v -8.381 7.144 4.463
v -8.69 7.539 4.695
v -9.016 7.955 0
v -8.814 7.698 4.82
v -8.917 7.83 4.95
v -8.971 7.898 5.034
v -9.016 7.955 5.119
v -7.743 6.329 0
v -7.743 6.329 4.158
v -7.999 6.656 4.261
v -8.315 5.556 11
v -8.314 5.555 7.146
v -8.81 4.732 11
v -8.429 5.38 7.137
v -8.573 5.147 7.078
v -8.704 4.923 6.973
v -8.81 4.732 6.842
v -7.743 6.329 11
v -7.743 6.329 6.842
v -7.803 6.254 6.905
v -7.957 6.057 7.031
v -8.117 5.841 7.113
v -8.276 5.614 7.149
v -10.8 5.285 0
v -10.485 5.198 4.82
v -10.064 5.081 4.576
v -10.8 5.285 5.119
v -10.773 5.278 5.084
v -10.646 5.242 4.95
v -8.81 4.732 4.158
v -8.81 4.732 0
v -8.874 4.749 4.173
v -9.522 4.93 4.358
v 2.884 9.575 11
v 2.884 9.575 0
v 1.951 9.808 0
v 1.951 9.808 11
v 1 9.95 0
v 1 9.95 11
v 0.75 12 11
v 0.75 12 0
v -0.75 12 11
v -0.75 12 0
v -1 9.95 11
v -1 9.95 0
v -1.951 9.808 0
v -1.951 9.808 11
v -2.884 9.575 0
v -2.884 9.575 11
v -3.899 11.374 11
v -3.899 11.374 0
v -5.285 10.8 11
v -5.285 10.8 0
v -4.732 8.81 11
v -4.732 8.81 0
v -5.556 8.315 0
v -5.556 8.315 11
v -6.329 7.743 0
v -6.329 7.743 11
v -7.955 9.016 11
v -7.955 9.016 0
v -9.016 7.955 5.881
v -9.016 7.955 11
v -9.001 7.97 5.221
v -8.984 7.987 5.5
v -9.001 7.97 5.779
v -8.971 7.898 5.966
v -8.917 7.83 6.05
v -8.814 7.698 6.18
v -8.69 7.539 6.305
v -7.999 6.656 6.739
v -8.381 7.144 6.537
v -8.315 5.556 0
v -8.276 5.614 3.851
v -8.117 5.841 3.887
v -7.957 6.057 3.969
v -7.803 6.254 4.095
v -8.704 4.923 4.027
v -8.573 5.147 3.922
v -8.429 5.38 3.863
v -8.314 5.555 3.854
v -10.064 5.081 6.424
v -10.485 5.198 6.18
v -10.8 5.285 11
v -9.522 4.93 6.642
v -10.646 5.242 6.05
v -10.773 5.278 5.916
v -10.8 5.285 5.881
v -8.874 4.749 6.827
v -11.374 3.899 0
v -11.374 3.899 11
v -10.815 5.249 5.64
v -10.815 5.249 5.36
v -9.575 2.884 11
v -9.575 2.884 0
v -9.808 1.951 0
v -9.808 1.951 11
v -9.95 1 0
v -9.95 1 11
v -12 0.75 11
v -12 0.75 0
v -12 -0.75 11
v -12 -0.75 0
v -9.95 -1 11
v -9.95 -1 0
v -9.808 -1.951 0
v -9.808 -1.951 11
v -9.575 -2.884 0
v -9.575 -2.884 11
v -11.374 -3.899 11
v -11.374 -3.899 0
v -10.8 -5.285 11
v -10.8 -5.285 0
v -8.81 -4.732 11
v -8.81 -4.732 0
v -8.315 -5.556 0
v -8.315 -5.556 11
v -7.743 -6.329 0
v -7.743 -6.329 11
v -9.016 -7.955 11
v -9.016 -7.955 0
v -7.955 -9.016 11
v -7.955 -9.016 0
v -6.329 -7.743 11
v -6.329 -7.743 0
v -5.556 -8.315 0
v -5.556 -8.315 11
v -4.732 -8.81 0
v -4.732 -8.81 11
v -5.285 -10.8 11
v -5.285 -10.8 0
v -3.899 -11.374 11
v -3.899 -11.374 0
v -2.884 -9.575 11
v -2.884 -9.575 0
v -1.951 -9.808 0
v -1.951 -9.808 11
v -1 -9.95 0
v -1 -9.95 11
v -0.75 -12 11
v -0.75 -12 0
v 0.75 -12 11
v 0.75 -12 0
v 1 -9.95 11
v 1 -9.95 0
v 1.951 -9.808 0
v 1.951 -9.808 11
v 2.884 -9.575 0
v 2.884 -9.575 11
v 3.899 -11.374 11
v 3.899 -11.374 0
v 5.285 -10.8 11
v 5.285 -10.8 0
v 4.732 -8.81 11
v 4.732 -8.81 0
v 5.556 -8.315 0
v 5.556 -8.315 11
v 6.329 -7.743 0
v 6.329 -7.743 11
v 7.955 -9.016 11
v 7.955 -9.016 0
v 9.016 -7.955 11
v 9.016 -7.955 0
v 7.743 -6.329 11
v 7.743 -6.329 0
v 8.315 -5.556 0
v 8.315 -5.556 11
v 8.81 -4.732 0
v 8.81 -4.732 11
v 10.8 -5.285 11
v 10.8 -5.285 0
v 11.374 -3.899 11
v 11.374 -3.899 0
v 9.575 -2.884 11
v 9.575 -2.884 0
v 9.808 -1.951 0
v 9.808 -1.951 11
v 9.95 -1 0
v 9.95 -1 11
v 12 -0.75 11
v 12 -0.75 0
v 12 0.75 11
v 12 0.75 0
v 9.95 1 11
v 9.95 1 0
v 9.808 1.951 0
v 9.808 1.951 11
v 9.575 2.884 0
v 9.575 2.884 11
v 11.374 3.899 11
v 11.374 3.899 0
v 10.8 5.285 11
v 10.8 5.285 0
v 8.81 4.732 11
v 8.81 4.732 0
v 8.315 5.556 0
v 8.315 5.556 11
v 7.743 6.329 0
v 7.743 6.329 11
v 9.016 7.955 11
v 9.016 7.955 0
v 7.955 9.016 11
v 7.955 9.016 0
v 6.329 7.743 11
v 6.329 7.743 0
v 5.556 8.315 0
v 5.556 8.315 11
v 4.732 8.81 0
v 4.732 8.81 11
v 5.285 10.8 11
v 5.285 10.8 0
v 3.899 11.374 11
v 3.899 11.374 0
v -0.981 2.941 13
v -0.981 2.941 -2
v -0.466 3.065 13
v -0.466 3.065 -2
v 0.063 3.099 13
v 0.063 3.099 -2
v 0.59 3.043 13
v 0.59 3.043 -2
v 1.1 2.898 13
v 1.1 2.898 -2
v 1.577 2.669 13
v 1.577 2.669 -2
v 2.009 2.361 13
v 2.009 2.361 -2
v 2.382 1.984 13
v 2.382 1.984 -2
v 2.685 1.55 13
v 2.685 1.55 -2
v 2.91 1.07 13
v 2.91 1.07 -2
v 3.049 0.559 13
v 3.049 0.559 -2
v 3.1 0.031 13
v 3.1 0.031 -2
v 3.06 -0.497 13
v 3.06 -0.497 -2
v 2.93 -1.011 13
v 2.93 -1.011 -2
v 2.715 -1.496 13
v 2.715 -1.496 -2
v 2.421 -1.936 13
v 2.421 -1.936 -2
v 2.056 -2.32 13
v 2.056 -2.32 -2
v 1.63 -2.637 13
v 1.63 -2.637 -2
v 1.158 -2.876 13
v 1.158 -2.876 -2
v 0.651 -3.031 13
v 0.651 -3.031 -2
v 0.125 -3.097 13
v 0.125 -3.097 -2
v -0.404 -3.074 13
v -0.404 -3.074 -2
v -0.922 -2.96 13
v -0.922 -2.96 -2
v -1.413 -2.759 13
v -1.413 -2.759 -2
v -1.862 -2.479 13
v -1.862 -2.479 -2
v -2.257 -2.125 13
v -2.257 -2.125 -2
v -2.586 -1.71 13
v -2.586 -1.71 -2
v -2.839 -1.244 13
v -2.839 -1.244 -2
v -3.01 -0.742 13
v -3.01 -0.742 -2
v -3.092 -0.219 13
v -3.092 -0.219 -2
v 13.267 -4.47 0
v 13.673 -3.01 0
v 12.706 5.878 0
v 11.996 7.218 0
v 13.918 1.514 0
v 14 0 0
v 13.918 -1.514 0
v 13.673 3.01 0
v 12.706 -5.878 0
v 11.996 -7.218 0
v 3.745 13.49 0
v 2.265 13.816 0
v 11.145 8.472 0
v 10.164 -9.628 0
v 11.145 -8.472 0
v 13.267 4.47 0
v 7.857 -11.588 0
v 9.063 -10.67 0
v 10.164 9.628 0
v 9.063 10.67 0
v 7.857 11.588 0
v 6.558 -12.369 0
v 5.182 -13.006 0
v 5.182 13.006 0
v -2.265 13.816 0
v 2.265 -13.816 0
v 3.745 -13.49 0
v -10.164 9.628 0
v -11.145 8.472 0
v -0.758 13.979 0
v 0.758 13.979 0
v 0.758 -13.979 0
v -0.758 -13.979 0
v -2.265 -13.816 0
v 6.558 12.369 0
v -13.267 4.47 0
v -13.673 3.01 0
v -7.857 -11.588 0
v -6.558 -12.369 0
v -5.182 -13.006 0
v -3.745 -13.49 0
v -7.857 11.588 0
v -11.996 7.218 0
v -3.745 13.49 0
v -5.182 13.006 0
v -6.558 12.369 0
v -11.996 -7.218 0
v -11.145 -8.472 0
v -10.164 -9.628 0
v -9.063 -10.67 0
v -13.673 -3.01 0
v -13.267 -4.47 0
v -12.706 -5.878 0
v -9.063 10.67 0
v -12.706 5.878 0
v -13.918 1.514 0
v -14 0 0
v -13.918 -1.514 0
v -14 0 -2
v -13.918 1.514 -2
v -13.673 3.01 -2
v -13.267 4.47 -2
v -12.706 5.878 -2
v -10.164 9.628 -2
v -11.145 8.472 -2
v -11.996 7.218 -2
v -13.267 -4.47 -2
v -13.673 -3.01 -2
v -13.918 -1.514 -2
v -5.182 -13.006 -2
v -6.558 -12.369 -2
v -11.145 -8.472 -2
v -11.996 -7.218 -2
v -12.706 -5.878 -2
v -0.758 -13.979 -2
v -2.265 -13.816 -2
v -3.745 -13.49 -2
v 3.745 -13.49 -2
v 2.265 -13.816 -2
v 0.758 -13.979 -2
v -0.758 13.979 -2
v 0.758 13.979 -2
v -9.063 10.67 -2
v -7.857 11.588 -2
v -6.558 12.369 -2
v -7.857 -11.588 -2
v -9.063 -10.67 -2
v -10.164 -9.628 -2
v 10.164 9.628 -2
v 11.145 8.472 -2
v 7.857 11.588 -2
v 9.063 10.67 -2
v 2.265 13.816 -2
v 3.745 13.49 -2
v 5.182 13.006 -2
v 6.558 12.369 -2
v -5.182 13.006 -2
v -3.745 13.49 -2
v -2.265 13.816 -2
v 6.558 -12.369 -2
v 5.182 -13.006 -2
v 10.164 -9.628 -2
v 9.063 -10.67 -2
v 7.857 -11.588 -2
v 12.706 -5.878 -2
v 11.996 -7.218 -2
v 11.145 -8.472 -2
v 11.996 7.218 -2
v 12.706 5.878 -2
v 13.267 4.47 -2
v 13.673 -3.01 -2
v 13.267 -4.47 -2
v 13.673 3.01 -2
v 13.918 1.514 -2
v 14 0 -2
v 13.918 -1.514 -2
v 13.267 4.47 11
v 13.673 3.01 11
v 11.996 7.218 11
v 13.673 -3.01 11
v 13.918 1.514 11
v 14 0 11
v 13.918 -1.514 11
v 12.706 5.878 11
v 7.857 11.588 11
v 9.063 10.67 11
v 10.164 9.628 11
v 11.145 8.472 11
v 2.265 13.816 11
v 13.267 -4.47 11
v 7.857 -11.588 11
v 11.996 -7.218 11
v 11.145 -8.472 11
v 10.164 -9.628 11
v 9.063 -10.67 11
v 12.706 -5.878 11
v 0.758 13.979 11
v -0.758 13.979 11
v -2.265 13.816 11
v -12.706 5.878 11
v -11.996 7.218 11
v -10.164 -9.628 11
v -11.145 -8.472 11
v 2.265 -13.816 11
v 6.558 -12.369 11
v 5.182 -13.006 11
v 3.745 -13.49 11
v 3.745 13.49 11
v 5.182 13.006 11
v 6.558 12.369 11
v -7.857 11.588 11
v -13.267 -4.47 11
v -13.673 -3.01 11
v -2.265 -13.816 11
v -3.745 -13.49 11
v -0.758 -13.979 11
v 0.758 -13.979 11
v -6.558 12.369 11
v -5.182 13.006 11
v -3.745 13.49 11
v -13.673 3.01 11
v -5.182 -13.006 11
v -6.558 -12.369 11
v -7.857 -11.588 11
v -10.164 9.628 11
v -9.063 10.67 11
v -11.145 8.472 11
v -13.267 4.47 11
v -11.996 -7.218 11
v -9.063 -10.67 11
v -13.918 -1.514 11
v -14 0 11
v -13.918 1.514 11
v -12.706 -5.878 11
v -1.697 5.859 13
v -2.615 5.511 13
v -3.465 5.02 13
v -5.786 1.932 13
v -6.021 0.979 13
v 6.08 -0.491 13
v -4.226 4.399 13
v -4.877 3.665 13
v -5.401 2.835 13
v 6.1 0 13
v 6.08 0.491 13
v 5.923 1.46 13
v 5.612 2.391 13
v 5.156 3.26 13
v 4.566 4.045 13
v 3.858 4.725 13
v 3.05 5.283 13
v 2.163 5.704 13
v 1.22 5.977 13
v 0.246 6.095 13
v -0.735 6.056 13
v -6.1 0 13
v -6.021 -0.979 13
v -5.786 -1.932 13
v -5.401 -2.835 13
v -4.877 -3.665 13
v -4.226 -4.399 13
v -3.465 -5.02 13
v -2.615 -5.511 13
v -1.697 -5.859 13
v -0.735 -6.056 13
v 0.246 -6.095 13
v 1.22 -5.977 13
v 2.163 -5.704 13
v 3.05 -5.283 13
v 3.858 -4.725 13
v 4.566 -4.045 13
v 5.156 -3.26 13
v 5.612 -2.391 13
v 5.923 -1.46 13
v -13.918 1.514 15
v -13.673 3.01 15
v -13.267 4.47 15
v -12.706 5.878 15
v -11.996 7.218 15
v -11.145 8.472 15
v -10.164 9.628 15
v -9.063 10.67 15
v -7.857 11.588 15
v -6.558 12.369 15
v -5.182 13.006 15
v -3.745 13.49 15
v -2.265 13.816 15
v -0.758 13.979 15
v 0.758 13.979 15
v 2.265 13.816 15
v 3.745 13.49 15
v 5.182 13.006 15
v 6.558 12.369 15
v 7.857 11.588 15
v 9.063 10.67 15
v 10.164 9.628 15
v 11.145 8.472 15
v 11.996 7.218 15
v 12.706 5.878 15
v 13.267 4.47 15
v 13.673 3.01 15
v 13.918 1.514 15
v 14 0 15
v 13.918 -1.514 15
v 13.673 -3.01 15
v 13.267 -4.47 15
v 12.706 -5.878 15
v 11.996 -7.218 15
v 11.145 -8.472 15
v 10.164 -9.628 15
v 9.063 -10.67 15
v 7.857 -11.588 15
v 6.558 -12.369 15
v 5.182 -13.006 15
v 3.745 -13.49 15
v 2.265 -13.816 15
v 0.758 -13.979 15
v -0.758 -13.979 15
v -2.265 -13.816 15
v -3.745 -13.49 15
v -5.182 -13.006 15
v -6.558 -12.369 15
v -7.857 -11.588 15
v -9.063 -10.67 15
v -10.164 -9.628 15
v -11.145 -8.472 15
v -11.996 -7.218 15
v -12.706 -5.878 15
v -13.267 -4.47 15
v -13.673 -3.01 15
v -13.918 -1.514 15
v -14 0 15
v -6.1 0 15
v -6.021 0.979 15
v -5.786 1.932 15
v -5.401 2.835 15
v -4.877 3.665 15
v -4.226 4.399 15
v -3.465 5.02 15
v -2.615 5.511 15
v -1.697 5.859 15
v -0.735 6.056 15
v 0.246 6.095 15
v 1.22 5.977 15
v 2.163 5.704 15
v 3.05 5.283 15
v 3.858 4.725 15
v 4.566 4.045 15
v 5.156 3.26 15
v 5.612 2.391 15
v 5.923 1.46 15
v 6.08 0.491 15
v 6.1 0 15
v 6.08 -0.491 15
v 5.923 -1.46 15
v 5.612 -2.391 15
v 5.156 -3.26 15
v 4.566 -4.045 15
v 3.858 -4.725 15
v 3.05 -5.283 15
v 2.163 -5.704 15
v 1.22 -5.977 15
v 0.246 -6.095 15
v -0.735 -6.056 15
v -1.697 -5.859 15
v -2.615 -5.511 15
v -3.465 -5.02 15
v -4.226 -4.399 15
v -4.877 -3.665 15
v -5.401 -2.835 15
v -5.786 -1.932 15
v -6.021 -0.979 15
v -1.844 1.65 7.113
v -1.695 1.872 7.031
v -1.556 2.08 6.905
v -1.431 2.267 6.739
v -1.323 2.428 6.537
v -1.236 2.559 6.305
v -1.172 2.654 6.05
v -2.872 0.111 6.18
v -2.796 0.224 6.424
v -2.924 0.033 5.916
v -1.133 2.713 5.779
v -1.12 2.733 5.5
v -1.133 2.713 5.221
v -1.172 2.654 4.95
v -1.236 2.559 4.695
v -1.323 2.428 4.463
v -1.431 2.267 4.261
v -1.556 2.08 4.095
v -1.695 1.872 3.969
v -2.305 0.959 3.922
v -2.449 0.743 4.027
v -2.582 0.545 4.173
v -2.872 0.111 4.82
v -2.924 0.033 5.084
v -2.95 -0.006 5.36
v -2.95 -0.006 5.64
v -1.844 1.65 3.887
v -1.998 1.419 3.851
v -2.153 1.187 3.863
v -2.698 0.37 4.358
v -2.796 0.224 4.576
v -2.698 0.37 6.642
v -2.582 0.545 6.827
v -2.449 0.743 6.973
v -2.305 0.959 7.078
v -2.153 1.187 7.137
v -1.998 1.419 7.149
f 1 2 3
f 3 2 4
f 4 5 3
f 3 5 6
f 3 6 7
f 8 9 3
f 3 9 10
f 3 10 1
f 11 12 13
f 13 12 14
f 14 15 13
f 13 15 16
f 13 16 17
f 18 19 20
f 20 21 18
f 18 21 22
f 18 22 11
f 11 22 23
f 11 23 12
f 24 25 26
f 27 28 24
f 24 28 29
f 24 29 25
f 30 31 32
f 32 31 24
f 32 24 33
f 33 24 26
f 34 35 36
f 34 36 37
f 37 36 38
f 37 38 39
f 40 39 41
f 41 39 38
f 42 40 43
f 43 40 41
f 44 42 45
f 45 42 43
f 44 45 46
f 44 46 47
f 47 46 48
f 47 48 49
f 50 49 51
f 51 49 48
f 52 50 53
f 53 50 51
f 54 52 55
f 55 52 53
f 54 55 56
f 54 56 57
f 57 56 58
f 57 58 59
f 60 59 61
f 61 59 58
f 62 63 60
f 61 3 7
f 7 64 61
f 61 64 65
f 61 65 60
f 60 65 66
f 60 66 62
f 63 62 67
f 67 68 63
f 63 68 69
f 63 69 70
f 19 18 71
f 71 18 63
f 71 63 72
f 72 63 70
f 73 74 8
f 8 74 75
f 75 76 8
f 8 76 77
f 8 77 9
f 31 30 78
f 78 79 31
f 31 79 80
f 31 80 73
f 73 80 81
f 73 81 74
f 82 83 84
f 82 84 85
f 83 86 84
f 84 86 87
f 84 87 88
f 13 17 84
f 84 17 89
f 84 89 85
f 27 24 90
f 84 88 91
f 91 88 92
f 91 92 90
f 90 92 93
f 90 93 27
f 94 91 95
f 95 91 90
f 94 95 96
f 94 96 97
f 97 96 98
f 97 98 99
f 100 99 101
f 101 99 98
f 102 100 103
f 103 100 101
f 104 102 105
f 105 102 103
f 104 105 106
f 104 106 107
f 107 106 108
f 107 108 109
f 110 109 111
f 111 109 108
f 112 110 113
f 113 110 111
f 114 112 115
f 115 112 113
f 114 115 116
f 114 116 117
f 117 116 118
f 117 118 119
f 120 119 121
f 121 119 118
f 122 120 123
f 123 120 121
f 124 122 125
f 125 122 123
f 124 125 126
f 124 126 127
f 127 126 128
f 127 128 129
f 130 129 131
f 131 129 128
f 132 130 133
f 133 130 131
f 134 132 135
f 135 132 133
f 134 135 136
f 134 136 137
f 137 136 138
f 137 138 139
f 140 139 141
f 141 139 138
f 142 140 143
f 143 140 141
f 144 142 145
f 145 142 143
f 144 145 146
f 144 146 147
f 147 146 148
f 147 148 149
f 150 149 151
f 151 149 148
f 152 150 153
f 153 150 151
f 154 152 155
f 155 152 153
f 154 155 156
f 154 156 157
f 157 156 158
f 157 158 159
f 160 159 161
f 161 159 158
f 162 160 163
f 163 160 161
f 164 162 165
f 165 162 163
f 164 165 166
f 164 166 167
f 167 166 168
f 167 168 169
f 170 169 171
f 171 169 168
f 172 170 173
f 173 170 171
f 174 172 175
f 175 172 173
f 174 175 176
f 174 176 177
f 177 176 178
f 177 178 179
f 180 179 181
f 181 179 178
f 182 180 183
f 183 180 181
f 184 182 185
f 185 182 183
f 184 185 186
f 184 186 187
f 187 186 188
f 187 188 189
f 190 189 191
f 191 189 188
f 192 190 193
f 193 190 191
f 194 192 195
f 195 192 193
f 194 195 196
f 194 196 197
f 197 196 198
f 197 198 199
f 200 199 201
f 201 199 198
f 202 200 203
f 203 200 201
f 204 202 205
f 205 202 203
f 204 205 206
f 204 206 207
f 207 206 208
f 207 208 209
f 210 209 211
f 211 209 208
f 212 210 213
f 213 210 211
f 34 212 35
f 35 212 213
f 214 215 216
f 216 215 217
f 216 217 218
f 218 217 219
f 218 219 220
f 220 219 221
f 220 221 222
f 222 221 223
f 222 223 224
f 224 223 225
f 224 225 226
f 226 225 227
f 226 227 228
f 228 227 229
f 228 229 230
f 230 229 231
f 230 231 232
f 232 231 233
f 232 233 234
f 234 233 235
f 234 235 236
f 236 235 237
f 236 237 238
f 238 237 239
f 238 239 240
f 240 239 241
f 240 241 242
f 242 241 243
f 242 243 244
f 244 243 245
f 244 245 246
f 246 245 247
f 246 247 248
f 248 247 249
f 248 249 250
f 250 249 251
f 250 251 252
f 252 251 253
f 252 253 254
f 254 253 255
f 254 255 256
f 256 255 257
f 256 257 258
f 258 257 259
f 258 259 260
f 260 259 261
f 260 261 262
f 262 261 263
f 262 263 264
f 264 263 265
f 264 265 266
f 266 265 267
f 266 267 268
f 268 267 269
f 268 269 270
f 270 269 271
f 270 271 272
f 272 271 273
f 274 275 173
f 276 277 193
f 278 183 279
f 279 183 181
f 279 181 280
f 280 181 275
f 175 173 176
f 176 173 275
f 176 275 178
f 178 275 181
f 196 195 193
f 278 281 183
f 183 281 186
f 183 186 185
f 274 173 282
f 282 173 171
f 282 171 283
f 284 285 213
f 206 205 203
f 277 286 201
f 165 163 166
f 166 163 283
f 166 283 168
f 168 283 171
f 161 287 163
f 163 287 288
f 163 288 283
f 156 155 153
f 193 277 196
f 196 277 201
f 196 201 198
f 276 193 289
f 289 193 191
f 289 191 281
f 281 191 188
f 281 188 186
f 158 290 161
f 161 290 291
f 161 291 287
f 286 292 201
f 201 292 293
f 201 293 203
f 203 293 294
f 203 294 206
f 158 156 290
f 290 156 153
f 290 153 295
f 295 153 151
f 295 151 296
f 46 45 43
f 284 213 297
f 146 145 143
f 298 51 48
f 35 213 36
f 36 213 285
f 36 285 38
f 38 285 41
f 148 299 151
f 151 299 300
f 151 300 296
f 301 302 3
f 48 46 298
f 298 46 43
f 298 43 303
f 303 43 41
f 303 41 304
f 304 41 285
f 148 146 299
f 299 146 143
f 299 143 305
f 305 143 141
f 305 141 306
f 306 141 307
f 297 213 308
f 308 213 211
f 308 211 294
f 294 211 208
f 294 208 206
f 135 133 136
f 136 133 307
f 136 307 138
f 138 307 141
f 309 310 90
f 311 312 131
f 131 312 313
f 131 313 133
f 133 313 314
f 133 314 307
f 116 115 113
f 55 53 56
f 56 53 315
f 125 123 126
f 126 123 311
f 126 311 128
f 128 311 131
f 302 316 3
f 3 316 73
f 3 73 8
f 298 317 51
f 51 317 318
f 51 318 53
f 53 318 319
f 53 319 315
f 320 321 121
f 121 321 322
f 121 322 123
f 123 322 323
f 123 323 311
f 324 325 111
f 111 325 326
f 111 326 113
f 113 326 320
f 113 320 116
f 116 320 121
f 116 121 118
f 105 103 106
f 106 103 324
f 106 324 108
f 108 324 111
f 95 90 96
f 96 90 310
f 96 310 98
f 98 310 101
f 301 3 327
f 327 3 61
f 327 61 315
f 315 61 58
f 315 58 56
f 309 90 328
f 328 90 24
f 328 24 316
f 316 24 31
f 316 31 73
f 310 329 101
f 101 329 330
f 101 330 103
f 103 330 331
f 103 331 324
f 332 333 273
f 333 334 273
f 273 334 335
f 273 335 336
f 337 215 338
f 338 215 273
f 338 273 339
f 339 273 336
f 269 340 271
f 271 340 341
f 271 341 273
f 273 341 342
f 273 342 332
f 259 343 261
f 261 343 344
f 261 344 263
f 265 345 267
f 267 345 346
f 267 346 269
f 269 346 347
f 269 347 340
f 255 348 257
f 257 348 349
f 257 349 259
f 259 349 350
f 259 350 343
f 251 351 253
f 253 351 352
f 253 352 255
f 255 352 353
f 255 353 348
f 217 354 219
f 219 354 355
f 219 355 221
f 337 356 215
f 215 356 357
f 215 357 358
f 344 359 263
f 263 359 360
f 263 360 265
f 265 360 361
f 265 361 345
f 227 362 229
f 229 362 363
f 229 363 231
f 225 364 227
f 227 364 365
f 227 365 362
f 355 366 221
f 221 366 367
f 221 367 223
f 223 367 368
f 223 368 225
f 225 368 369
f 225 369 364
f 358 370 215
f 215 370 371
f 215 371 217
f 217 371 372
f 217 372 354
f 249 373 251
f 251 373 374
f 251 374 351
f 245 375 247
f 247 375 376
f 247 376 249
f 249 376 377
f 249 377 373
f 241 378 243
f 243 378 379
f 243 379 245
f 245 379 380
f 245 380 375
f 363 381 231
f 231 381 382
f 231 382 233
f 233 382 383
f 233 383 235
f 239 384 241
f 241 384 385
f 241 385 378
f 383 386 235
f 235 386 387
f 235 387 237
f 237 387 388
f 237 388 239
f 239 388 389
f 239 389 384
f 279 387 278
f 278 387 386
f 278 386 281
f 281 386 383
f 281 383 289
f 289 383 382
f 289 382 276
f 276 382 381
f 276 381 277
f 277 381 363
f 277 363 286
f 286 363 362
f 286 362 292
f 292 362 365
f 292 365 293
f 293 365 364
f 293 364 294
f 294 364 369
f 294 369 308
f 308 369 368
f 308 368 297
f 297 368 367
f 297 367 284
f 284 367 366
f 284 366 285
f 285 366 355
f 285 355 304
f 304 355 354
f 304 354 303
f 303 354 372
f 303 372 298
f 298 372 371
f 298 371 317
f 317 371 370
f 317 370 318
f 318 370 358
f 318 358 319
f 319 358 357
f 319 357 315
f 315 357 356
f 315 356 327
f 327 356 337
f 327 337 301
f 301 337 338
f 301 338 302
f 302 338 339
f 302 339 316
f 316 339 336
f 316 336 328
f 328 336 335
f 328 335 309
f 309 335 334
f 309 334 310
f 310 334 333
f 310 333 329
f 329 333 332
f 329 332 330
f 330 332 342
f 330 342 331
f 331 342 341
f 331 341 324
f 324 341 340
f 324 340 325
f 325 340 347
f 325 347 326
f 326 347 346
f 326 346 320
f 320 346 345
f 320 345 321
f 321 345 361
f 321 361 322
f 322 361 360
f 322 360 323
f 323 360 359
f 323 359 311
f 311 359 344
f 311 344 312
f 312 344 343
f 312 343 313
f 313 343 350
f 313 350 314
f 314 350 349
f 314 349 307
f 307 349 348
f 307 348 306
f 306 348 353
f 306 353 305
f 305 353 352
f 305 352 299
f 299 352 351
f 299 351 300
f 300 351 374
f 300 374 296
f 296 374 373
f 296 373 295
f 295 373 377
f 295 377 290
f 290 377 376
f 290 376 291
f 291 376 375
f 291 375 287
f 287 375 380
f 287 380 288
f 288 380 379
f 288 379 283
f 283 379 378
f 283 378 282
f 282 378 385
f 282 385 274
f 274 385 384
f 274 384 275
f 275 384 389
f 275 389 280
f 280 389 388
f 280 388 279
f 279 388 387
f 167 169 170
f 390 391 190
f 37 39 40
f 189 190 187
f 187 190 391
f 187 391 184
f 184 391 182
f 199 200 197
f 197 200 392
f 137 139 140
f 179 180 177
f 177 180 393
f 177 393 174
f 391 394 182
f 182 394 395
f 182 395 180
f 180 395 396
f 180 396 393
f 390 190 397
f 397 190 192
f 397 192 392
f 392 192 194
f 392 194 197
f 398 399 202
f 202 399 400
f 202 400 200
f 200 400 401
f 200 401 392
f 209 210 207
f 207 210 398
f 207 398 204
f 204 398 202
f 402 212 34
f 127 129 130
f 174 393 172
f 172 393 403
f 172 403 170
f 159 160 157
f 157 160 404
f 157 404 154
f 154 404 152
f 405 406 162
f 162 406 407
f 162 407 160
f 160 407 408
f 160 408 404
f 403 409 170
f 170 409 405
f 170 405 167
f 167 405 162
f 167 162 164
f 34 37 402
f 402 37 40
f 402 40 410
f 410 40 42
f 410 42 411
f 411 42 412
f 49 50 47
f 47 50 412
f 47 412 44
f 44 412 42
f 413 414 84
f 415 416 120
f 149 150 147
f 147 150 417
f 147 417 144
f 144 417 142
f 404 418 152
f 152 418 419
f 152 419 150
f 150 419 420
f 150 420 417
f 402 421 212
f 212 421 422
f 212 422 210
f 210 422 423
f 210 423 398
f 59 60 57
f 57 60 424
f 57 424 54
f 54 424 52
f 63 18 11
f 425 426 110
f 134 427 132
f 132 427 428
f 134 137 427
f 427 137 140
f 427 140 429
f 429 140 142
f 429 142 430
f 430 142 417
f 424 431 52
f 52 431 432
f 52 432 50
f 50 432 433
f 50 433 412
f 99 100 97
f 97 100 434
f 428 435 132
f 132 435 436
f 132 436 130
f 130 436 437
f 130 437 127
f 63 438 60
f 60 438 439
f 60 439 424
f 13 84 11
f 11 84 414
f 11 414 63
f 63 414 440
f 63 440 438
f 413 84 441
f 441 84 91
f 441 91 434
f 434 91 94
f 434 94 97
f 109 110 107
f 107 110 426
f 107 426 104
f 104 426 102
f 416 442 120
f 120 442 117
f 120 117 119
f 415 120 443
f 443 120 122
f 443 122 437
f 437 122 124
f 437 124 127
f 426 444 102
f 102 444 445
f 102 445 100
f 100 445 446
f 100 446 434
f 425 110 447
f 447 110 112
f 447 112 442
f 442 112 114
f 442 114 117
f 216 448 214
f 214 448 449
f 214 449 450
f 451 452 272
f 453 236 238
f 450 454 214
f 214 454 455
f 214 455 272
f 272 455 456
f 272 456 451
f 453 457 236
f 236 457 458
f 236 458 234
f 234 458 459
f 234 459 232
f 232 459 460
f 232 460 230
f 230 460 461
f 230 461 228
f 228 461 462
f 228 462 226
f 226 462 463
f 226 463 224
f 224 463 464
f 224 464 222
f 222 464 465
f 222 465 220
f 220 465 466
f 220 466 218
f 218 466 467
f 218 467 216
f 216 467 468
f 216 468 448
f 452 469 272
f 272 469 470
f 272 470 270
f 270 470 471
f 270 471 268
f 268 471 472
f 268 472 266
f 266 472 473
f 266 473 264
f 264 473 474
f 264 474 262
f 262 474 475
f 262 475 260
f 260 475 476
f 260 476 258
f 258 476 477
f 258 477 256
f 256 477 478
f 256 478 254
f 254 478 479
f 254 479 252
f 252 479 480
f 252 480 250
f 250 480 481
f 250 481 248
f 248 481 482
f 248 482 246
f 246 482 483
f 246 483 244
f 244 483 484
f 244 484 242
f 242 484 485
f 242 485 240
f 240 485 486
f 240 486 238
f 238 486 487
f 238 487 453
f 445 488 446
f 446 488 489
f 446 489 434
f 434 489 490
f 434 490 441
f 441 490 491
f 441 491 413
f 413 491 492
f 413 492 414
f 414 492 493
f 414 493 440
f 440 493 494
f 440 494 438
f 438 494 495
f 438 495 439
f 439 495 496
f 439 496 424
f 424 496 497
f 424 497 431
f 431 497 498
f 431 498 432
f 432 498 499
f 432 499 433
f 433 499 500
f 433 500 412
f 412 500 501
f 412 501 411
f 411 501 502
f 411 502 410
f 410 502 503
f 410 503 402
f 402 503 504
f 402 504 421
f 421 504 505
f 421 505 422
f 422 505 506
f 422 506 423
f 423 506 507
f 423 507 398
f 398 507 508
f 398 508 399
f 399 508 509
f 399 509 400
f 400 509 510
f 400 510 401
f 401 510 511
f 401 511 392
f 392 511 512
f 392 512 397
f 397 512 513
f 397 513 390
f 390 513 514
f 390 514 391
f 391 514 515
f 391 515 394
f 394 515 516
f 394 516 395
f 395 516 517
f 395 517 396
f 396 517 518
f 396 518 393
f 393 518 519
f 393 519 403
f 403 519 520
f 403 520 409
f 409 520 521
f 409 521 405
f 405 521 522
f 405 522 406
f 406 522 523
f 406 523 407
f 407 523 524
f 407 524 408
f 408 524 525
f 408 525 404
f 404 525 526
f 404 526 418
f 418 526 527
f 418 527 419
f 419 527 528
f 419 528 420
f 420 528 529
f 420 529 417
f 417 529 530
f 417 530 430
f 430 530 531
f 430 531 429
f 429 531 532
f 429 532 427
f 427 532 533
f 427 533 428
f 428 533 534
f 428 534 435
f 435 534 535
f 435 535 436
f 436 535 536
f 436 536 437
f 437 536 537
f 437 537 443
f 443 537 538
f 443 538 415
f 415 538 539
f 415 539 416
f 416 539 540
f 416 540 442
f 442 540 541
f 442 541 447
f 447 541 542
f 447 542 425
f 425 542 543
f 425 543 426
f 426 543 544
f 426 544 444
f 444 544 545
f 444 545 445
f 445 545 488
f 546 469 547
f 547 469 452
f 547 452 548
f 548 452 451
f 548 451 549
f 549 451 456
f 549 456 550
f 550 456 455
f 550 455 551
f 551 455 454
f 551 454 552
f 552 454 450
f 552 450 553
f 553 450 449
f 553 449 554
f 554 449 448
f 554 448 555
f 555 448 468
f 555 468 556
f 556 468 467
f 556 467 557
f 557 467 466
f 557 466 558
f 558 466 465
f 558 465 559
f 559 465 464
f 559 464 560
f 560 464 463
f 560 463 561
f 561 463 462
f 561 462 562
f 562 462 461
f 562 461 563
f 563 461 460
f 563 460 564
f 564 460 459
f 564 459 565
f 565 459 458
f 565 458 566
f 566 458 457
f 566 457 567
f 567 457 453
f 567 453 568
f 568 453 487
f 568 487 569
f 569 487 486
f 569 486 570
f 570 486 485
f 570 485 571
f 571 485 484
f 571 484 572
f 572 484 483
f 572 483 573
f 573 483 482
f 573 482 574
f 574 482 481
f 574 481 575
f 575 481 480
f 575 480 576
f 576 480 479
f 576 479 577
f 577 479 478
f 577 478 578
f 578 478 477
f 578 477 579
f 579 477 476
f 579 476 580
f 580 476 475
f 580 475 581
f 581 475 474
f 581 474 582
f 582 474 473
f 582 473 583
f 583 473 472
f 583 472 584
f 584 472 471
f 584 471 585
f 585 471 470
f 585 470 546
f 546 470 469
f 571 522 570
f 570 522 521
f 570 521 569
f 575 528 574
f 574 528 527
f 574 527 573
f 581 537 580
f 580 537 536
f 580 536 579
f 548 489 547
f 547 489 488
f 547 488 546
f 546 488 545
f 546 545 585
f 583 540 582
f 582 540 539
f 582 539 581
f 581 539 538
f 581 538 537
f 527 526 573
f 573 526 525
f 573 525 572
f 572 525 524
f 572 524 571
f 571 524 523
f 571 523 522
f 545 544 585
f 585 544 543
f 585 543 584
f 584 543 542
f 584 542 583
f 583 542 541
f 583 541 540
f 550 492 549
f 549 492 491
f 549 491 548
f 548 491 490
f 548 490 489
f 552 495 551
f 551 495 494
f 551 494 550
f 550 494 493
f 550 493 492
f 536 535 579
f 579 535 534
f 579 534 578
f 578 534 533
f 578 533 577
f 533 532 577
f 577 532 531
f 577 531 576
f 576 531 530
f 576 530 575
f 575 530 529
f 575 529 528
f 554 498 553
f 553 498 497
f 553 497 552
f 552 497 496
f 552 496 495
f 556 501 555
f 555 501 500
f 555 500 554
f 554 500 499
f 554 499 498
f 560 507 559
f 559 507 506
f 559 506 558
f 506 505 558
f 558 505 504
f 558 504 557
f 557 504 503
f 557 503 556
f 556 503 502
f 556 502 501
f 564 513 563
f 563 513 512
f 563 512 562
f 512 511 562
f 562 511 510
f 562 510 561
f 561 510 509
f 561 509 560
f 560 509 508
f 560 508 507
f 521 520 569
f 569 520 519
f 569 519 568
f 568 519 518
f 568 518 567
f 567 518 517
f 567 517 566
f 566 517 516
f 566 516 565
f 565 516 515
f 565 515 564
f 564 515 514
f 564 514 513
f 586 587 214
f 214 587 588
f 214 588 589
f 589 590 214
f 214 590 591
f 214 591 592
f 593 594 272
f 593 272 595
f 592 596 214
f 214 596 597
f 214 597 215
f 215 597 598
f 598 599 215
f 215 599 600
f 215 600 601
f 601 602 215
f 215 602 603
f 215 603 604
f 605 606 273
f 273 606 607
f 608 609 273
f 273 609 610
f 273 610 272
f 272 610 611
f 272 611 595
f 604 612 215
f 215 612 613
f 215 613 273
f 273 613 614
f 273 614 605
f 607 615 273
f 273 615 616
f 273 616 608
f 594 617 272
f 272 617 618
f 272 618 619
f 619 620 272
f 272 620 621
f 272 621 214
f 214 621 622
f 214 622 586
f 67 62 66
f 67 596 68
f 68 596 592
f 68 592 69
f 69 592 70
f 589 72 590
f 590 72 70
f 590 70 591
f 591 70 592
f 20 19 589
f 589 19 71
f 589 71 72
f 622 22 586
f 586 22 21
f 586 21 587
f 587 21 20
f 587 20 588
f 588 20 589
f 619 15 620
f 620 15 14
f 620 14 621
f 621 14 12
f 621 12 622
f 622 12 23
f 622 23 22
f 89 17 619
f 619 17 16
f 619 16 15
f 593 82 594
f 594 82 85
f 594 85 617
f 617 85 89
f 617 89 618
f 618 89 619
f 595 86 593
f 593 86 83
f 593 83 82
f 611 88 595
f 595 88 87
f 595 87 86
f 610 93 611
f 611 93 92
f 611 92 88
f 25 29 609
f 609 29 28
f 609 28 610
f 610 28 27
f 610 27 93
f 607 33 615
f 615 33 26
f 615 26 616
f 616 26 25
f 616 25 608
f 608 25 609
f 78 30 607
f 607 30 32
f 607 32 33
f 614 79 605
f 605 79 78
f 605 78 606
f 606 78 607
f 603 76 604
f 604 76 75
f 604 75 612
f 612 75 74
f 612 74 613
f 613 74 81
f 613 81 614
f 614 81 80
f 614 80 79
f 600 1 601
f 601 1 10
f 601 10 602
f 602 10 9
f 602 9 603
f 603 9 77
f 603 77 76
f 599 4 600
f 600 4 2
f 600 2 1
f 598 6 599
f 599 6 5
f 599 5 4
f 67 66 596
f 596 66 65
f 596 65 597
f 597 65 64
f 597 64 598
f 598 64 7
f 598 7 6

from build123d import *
from build123d.topology import SkipClean

# Parameters (mm, degrees)
SKETCH_1_R          = 3.1
SKETCH_1_W          = 1.5
SKETCH_1_H          = 1.949874371
EXTRUDE_1_DEPTH     = 11
EXTRUDE_START       = 2
SKETCH_3_R          = 14
SKETCH_3_R_2        = 3.1
EXTRUDE_2_DEPTH     = 2
SKETCH_4_R          = 14
SKETCH_4_R_2        = 3.1
EXTRUDE_3_DEPTH     = 2
SKETCH_5_R          = 14
SKETCH_5_R_2        = 6.1
EXTRUDE_4_DEPTH     = 2
EXTRUDE_5_DEPTH     = 15
SKETCH_2_R          = 1.65
CUT_EXTRUDE_3_DEPTH = 25.839484697


with BuildPart() as part:
    # ｽｹｯﾁ1 → ﾎﾞｽ - 押し出し1 (new body)
    # profile 1 of 23: a face of its own
    with BuildSketch(Plane.XY):
        with BuildLine():
            ThreePointArc((-4.731531608, 8.80980185), (-3.826834324, 9.238795325), (-2.883772543, 9.575168715))
            Line((-2.883772543, 9.575168715), (-3.899291539, 11.373566964))
            Line((-3.899291539, 11.373566964), (-5.285110838, 10.799541816))
            Line((-5.285110838, 10.799541816), (-4.731531608, 8.80980185))
        make_face()
    # profile 2 of 23: a face of its own
    with BuildSketch(Plane.XY):
        with BuildLine():
            Line((-0.75, 9.971835338), (-0.75, 12))
            Line((-0.75, 12), (-1, 9.949874371))
            ThreePointArc((-1, 9.949874371), (-0.875068895, 9.961639144), (-0.75, 9.971835338))
        make_face()
    # profile 3 of 23: a face of its own
    with BuildSketch(Plane.XY):
        with BuildLine():
            Line((0.75, 12), (-0.75, 12))
            Line((-0.75, 12), (-0.75, 9.971835338))
            ThreePointArc((-0.75, 9.971835338), (0, 10), (0.75, 9.971835338))
            Line((0.75, 9.971835338), (0.75, 12))
        make_face()
    # profile 4 of 23: a face of its own
    with BuildSketch(Plane.XY):
        with BuildLine():
            Line((1, 9.949874371), (0.75, 12))
            Line((0.75, 12), (0.75, 9.971835338))
            ThreePointArc((0.75, 9.971835338), (0.875068895, 9.961639144), (1, 9.949874371))
        make_face()
    # profile 5 of 23: a face of its own
    with BuildSketch(Plane.XY):
        with BuildLine():
            ThreePointArc((-7.742730421, 6.328516859), (-7.071067812, 7.071067812), (-6.328516859, 7.742730421))
            Line((-6.328516859, 7.742730421), (-7.954951288, 9.01561146))
            Line((-7.954951288, 9.01561146), (-9.01561146, 7.954951288))
            Line((-9.01561146, 7.954951288), (-7.742730421, 6.328516859))
        make_face()
    # profile 6 of 23: a face of its own
    with BuildSketch(Plane.XY):
        with BuildLine():
            ThreePointArc((-9.575168715, 2.883772543), (-9.238795325, 3.826834324), (-8.80980185, 4.731531608))
            Line((-8.80980185, 4.731531608), (-10.799541816, 5.285110838))
            Line((-10.799541816, 5.285110838), (-11.373566964, 3.899291539))
            Line((-11.373566964, 3.899291539), (-9.575168715, 2.883772543))
        make_face()
    # profile 7 of 23: a face of its own
    with BuildSketch(Plane.XY):
        with BuildLine():
            ThreePointArc((-9.949874371, -1), (-10, 0), (-9.949874371, 1))
            Line((-9.949874371, 1), (-12, 0.75))
            Line((-12, 0.75), (-12, -0.75))
            Line((-12, -0.75), (-9.949874371, -1))
        make_face()
    # profile 8 of 23: a face of its own
    with BuildSketch(Plane.XY):
        with BuildLine():
            ThreePointArc((-8.80980185, -4.731531608), (-9.238795325, -3.826834324), (-9.575168715, -2.883772543))
            Line((-9.575168715, -2.883772543), (-11.373566964, -3.899291539))
            Line((-11.373566964, -3.899291539), (-10.799541816, -5.285110838))
            Line((-10.799541816, -5.285110838), (-8.80980185, -4.731531608))
        make_face()
    # profile 9 of 23: a face of its own
    with BuildSketch(Plane.XY):
        with BuildLine():
            ThreePointArc((-6.328516859, -7.742730421), (-7.071067812, -7.071067812), (-7.742730421, -6.328516859))
            Line((-7.742730421, -6.328516859), (-9.01561146, -7.954951288))
            Line((-9.01561146, -7.954951288), (-7.954951288, -9.01561146))
            Line((-7.954951288, -9.01561146), (-6.328516859, -7.742730421))
        make_face()
    # profile 10 of 23: a face of its own
    with BuildSketch(Plane.XY):
        with BuildLine():
            ThreePointArc((-2.883772543, -9.575168715), (-3.826834324, -9.238795325), (-4.731531608, -8.80980185))
            Line((-4.731531608, -8.80980185), (-5.285110838, -10.799541816))
            Line((-5.285110838, -10.799541816), (-3.899291539, -11.373566964))
            Line((-3.899291539, -11.373566964), (-2.883772543, -9.575168715))
        make_face()
    # profile 11 of 23: a face of its own
    with BuildSketch(Plane.XY):
        with BuildLine():
            ThreePointArc((1, -9.949874371), (0, -10), (-1, -9.949874371))
            Line((-1, -9.949874371), (-0.75, -12))
            Line((-0.75, -12), (0.75, -12))
            Line((0.75, -12), (1, -9.949874371))
        make_face()
    # profile 12 of 23: a face of its own
    with BuildSketch(Plane.XY):
        with BuildLine():
            Line((5.285110838, -10.799541816), (4.731531608, -8.80980185))
            ThreePointArc((4.731531608, -8.80980185), (3.826834324, -9.238795325), (2.883772543, -9.575168715))
            Line((2.883772543, -9.575168715), (3.899291539, -11.373566964))
            Line((3.899291539, -11.373566964), (5.285110838, -10.799541816))
        make_face()
    # profile 13 of 23: a face of its own
    with BuildSketch(Plane.XY):
        with BuildLine():
            Line((9.01561146, -7.954951288), (7.742730421, -6.328516859))
            ThreePointArc((7.742730421, -6.328516859), (7.071067812, -7.071067812), (6.328516859, -7.742730421))
            Line((6.328516859, -7.742730421), (7.954951288, -9.01561146))
            Line((7.954951288, -9.01561146), (9.01561146, -7.954951288))
        make_face()
    # profile 14 of 23: a face of its own
    with BuildSketch(Plane.XY):
        with BuildLine():
            Line((11.373566964, -3.899291539), (9.575168715, -2.883772543))
            ThreePointArc((9.575168715, -2.883772543), (9.238795325, -3.826834324), (8.80980185, -4.731531608))
            Line((8.80980185, -4.731531608), (10.799541816, -5.285110838))
            Line((10.799541816, -5.285110838), (11.373566964, -3.899291539))
        make_face()
    # profile 15 of 23: a face of its own
    with BuildSketch(Plane.XY):
        with BuildLine():
            Line((12, 0.75), (9.949874371, 1))
            ThreePointArc((9.949874371, 1), (9.987460731, 0.500627751), (10, 0))
            ThreePointArc((10, 0), (9.987460731, -0.500627751), (9.949874371, -1))
            Line((9.949874371, -1), (12, -0.75))
            Line((12, -0.75), (12, 0.75))
        make_face()
    # profile 16 of 23: a face of its own
    with BuildSketch(Plane.XY):
        with BuildLine():
            Line((10.799541816, 5.285110838), (8.80980185, 4.731531608))
            ThreePointArc((8.80980185, 4.731531608), (9.238795325, 3.826834324), (9.575168715, 2.883772543))
            Line((9.575168715, 2.883772543), (11.373566964, 3.899291539))
            Line((11.373566964, 3.899291539), (10.799541816, 5.285110838))
        make_face()
    # profile 17 of 23: a face of its own
    with BuildSketch(Plane.XY):
        with BuildLine():
            Line((7.954951288, 9.01561146), (6.328516859, 7.742730421))
            ThreePointArc((6.328516859, 7.742730421), (7.071067812, 7.071067812), (7.742730421, 6.328516859))
            Line((7.742730421, 6.328516859), (9.01561146, 7.954951288))
            Line((9.01561146, 7.954951288), (7.954951288, 9.01561146))
        make_face()
    # profile 18 of 23: a face of its own
    with BuildSketch(Plane.XY):
        with BuildLine():
            Line((3.899291539, 11.373566964), (2.883772543, 9.575168715))
            ThreePointArc((2.883772543, 9.575168715), (3.826834324, 9.238795325), (4.731531608, 8.80980185))
            Line((4.731531608, 8.80980185), (5.285110838, 10.799541816))
            Line((5.285110838, 10.799541816), (3.899291539, 11.373566964))
        make_face()
    # profile 19 of 23: a face of its own
    with BuildSketch(Plane.XY):
        with BuildLine():
            Line((-0.75, 9.949874371), (-1, 9.949874371))
            ThreePointArc((-1, 9.949874371), (-1.95090322, 9.807852804), (-2.883772543, 9.575168715))
            ThreePointArc((-2.883772543, 9.575168715), (-3.826834324, 9.238795325), (-4.731531608, 8.80980185))
            ThreePointArc((-4.731531608, 8.80980185), (-5.55570233, 8.314696123), (-6.328516859, 7.742730421))
            ThreePointArc((-6.328516859, 7.742730421), (-7.071067812, 7.071067812), (-7.742730421, 6.328516859))
            ThreePointArc((-7.742730421, 6.328516859), (-8.314696123, 5.55570233), (-8.80980185, 4.731531608))
            ThreePointArc((-8.80980185, 4.731531608), (-9.238795325, 3.826834324), (-9.575168715, 2.883772543))
            ThreePointArc((-9.575168715, 2.883772543), (-9.807852804, 1.95090322), (-9.949874371, 1))
            ThreePointArc((-9.949874371, 1), (-10, 0), (-9.949874371, -1))
            ThreePointArc((-9.949874371, -1), (-9.807852804, -1.95090322), (-9.575168715, -2.883772543))
            ThreePointArc((-9.575168715, -2.883772543), (-9.238795325, -3.826834324), (-8.80980185, -4.731531608))
            ThreePointArc((-8.80980185, -4.731531608), (-8.314696123, -5.55570233), (-7.742730421, -6.328516859))
            ThreePointArc((-7.742730421, -6.328516859), (-7.071067812, -7.071067812), (-6.328516859, -7.742730421))
            ThreePointArc((-6.328516859, -7.742730421), (-5.55570233, -8.314696123), (-4.731531608, -8.80980185))
            ThreePointArc((-4.731531608, -8.80980185), (-3.826834324, -9.238795325), (-2.883772543, -9.575168715))
            ThreePointArc((-2.883772543, -9.575168715), (-1.95090322, -9.807852804), (-1, -9.949874371))
            ThreePointArc((-1, -9.949874371), (0, -10), (1, -9.949874371))
            ThreePointArc((1, -9.949874371), (1.95090322, -9.807852804), (2.883772543, -9.575168715))
            ThreePointArc((2.883772543, -9.575168715), (3.826834324, -9.238795325), (4.731531608, -8.80980185))
            ThreePointArc((4.731531608, -8.80980185), (5.55570233, -8.314696123), (6.328516859, -7.742730421))
            ThreePointArc((6.328516859, -7.742730421), (7.071067812, -7.071067812), (7.742730421, -6.328516859))
            ThreePointArc((7.742730421, -6.328516859), (8.314696123, -5.55570233), (8.80980185, -4.731531608))
            ThreePointArc((8.80980185, -4.731531608), (9.238795325, -3.826834324), (9.575168715, -2.883772543))
            ThreePointArc((9.575168715, -2.883772543), (9.807852804, -1.95090322), (9.949874371, -1))
            ThreePointArc((9.949874371, -1), (9.987460731, -0.500627751), (10, 0))
            ThreePointArc((10, 0), (9.987460731, 0.500627751), (9.949874371, 1))
            ThreePointArc((9.949874371, 1), (9.807852804, 1.95090322), (9.575168715, 2.883772543))
            ThreePointArc((9.575168715, 2.883772543), (9.238795325, 3.826834324), (8.80980185, 4.731531608))
            ThreePointArc((8.80980185, 4.731531608), (8.314696123, 5.55570233), (7.742730421, 6.328516859))
            ThreePointArc((7.742730421, 6.328516859), (7.071067812, 7.071067812), (6.328516859, 7.742730421))
            ThreePointArc((6.328516859, 7.742730421), (5.55570233, 8.314696123), (4.731531608, 8.80980185))
            ThreePointArc((4.731531608, 8.80980185), (3.826834324, 9.238795325), (2.883772543, 9.575168715))
            ThreePointArc((2.883772543, 9.575168715), (1.95090322, 9.807852804), (1, 9.949874371))
            Line((1, 9.949874371), (0.75, 9.949874371))
            Line((0.75, 9.949874371), (0.75, 8))
            Line((0.75, 8), (-0.75, 8))
            Line((-0.75, 8), (-0.75, 9.949874371))
        make_face()
        Circle(SKETCH_1_R, mode=Mode.SUBTRACT)
    # profile 20 of 23: a face of its own
    with BuildSketch(Plane.XY):
        with Locations((0, 8.974937185)):
            Rectangle(SKETCH_1_W, SKETCH_1_H)
    # profile 21 of 23: a face of its own
    with BuildSketch(Plane.XY):
        with BuildLine():
            ThreePointArc((0.75, 9.971835338), (0, 10), (-0.75, 9.971835338))
            Line((-0.75, 9.971835338), (-0.75, 9.949874371))
            Line((-0.75, 9.949874371), (0.75, 9.949874371))
            Line((0.75, 9.949874371), (0.75, 9.971835338))
        make_face()
    # profile 22 of 23: a face of its own
    with BuildSketch(Plane.XY):
        with BuildLine():
            ThreePointArc((-0.75, 9.971835338), (-0.875068895, 9.961639144), (-1, 9.949874371))
            Line((-1, 9.949874371), (-0.75, 9.949874371))
            Line((-0.75, 9.949874371), (-0.75, 9.971835338))
        make_face()
    # profile 23 of 23: a face of its own
    with BuildSketch(Plane.XY):
        with BuildLine():
            ThreePointArc((1, 9.949874371), (0.875068895, 9.961639144), (0.75, 9.971835338))
            Line((0.75, 9.971835338), (0.75, 9.949874371))
            Line((0.75, 9.949874371), (1, 9.949874371))
        make_face()
    extrude(amount=EXTRUDE_1_DEPTH)

    # ｽｹｯﾁ3 → ﾎﾞｽ - 押し出し2 (add)
    with SkipClean():  # the faces are left unmerged after this step: merging them gives an invalid solid
        with BuildSketch(Plane(origin=(0, 0, 0), x_dir=(-1, 0, 0), z_dir=(0, 0, -1)).offset(EXTRUDE_START)):
            Circle(SKETCH_3_R)
            Circle(SKETCH_3_R_2, mode=Mode.SUBTRACT)
        extrude(amount=-EXTRUDE_2_DEPTH)

    # ｽｹｯﾁ4 → ﾎﾞｽ - 押し出し3 (add)
    with BuildSketch(Plane.XY.offset(11)):
        with Locations(Location((0, 0, 0), (0, 0, 180))):
            Circle(SKETCH_4_R)
        with Locations(Location((0, 0, 0), (0, 0, 180))):
            Circle(SKETCH_4_R_2, mode=Mode.SUBTRACT)
    extrude(amount=EXTRUDE_3_DEPTH)

    # ｽｹｯﾁ5 → ﾎﾞｽ - 押し出し4 (add)
    with BuildSketch(Plane.XY.offset(13)):
        with Locations(Location((0, 0, 0), (0, 0, 180))):
            Circle(SKETCH_5_R)
        Circle(SKETCH_5_R_2, mode=Mode.SUBTRACT)
    extrude(amount=EXTRUDE_4_DEPTH)

    # ｽｹｯﾁ6 → ﾎﾞｽ - 押し出し5 (add)
    with BuildSketch(Plane(origin=(0, 0, -2), x_dir=(-1, 0, 0), z_dir=(0, 0, -1))):
        with BuildLine():
            Line((0.981092844, 2.940655851), (3.09225973, -0.218928676))
            ThreePointArc((3.09225973, -0.218928676), (2.577555798, 1.722267722), (0.981092844, 2.940655851))
        make_face()
    extrude(amount=-EXTRUDE_5_DEPTH)

    # ｽｹｯﾁ2 → ｶｯﾄ - 押し出し3 (cut, through all)
    with BuildSketch(Plane(origin=(0, 0, 0), x_dir=(0, 0, -1), z_dir=(0.8314696123025446, -0.5555702330196034, 0))):
        with Locations(Location((-5.5, 0, 0), (0, 0, 90))):
            Circle(SKETCH_2_R)
    extrude(amount=-CUT_EXTRUDE_3_DEPTH, mode=Mode.SUBTRACT)


solid = part.part
